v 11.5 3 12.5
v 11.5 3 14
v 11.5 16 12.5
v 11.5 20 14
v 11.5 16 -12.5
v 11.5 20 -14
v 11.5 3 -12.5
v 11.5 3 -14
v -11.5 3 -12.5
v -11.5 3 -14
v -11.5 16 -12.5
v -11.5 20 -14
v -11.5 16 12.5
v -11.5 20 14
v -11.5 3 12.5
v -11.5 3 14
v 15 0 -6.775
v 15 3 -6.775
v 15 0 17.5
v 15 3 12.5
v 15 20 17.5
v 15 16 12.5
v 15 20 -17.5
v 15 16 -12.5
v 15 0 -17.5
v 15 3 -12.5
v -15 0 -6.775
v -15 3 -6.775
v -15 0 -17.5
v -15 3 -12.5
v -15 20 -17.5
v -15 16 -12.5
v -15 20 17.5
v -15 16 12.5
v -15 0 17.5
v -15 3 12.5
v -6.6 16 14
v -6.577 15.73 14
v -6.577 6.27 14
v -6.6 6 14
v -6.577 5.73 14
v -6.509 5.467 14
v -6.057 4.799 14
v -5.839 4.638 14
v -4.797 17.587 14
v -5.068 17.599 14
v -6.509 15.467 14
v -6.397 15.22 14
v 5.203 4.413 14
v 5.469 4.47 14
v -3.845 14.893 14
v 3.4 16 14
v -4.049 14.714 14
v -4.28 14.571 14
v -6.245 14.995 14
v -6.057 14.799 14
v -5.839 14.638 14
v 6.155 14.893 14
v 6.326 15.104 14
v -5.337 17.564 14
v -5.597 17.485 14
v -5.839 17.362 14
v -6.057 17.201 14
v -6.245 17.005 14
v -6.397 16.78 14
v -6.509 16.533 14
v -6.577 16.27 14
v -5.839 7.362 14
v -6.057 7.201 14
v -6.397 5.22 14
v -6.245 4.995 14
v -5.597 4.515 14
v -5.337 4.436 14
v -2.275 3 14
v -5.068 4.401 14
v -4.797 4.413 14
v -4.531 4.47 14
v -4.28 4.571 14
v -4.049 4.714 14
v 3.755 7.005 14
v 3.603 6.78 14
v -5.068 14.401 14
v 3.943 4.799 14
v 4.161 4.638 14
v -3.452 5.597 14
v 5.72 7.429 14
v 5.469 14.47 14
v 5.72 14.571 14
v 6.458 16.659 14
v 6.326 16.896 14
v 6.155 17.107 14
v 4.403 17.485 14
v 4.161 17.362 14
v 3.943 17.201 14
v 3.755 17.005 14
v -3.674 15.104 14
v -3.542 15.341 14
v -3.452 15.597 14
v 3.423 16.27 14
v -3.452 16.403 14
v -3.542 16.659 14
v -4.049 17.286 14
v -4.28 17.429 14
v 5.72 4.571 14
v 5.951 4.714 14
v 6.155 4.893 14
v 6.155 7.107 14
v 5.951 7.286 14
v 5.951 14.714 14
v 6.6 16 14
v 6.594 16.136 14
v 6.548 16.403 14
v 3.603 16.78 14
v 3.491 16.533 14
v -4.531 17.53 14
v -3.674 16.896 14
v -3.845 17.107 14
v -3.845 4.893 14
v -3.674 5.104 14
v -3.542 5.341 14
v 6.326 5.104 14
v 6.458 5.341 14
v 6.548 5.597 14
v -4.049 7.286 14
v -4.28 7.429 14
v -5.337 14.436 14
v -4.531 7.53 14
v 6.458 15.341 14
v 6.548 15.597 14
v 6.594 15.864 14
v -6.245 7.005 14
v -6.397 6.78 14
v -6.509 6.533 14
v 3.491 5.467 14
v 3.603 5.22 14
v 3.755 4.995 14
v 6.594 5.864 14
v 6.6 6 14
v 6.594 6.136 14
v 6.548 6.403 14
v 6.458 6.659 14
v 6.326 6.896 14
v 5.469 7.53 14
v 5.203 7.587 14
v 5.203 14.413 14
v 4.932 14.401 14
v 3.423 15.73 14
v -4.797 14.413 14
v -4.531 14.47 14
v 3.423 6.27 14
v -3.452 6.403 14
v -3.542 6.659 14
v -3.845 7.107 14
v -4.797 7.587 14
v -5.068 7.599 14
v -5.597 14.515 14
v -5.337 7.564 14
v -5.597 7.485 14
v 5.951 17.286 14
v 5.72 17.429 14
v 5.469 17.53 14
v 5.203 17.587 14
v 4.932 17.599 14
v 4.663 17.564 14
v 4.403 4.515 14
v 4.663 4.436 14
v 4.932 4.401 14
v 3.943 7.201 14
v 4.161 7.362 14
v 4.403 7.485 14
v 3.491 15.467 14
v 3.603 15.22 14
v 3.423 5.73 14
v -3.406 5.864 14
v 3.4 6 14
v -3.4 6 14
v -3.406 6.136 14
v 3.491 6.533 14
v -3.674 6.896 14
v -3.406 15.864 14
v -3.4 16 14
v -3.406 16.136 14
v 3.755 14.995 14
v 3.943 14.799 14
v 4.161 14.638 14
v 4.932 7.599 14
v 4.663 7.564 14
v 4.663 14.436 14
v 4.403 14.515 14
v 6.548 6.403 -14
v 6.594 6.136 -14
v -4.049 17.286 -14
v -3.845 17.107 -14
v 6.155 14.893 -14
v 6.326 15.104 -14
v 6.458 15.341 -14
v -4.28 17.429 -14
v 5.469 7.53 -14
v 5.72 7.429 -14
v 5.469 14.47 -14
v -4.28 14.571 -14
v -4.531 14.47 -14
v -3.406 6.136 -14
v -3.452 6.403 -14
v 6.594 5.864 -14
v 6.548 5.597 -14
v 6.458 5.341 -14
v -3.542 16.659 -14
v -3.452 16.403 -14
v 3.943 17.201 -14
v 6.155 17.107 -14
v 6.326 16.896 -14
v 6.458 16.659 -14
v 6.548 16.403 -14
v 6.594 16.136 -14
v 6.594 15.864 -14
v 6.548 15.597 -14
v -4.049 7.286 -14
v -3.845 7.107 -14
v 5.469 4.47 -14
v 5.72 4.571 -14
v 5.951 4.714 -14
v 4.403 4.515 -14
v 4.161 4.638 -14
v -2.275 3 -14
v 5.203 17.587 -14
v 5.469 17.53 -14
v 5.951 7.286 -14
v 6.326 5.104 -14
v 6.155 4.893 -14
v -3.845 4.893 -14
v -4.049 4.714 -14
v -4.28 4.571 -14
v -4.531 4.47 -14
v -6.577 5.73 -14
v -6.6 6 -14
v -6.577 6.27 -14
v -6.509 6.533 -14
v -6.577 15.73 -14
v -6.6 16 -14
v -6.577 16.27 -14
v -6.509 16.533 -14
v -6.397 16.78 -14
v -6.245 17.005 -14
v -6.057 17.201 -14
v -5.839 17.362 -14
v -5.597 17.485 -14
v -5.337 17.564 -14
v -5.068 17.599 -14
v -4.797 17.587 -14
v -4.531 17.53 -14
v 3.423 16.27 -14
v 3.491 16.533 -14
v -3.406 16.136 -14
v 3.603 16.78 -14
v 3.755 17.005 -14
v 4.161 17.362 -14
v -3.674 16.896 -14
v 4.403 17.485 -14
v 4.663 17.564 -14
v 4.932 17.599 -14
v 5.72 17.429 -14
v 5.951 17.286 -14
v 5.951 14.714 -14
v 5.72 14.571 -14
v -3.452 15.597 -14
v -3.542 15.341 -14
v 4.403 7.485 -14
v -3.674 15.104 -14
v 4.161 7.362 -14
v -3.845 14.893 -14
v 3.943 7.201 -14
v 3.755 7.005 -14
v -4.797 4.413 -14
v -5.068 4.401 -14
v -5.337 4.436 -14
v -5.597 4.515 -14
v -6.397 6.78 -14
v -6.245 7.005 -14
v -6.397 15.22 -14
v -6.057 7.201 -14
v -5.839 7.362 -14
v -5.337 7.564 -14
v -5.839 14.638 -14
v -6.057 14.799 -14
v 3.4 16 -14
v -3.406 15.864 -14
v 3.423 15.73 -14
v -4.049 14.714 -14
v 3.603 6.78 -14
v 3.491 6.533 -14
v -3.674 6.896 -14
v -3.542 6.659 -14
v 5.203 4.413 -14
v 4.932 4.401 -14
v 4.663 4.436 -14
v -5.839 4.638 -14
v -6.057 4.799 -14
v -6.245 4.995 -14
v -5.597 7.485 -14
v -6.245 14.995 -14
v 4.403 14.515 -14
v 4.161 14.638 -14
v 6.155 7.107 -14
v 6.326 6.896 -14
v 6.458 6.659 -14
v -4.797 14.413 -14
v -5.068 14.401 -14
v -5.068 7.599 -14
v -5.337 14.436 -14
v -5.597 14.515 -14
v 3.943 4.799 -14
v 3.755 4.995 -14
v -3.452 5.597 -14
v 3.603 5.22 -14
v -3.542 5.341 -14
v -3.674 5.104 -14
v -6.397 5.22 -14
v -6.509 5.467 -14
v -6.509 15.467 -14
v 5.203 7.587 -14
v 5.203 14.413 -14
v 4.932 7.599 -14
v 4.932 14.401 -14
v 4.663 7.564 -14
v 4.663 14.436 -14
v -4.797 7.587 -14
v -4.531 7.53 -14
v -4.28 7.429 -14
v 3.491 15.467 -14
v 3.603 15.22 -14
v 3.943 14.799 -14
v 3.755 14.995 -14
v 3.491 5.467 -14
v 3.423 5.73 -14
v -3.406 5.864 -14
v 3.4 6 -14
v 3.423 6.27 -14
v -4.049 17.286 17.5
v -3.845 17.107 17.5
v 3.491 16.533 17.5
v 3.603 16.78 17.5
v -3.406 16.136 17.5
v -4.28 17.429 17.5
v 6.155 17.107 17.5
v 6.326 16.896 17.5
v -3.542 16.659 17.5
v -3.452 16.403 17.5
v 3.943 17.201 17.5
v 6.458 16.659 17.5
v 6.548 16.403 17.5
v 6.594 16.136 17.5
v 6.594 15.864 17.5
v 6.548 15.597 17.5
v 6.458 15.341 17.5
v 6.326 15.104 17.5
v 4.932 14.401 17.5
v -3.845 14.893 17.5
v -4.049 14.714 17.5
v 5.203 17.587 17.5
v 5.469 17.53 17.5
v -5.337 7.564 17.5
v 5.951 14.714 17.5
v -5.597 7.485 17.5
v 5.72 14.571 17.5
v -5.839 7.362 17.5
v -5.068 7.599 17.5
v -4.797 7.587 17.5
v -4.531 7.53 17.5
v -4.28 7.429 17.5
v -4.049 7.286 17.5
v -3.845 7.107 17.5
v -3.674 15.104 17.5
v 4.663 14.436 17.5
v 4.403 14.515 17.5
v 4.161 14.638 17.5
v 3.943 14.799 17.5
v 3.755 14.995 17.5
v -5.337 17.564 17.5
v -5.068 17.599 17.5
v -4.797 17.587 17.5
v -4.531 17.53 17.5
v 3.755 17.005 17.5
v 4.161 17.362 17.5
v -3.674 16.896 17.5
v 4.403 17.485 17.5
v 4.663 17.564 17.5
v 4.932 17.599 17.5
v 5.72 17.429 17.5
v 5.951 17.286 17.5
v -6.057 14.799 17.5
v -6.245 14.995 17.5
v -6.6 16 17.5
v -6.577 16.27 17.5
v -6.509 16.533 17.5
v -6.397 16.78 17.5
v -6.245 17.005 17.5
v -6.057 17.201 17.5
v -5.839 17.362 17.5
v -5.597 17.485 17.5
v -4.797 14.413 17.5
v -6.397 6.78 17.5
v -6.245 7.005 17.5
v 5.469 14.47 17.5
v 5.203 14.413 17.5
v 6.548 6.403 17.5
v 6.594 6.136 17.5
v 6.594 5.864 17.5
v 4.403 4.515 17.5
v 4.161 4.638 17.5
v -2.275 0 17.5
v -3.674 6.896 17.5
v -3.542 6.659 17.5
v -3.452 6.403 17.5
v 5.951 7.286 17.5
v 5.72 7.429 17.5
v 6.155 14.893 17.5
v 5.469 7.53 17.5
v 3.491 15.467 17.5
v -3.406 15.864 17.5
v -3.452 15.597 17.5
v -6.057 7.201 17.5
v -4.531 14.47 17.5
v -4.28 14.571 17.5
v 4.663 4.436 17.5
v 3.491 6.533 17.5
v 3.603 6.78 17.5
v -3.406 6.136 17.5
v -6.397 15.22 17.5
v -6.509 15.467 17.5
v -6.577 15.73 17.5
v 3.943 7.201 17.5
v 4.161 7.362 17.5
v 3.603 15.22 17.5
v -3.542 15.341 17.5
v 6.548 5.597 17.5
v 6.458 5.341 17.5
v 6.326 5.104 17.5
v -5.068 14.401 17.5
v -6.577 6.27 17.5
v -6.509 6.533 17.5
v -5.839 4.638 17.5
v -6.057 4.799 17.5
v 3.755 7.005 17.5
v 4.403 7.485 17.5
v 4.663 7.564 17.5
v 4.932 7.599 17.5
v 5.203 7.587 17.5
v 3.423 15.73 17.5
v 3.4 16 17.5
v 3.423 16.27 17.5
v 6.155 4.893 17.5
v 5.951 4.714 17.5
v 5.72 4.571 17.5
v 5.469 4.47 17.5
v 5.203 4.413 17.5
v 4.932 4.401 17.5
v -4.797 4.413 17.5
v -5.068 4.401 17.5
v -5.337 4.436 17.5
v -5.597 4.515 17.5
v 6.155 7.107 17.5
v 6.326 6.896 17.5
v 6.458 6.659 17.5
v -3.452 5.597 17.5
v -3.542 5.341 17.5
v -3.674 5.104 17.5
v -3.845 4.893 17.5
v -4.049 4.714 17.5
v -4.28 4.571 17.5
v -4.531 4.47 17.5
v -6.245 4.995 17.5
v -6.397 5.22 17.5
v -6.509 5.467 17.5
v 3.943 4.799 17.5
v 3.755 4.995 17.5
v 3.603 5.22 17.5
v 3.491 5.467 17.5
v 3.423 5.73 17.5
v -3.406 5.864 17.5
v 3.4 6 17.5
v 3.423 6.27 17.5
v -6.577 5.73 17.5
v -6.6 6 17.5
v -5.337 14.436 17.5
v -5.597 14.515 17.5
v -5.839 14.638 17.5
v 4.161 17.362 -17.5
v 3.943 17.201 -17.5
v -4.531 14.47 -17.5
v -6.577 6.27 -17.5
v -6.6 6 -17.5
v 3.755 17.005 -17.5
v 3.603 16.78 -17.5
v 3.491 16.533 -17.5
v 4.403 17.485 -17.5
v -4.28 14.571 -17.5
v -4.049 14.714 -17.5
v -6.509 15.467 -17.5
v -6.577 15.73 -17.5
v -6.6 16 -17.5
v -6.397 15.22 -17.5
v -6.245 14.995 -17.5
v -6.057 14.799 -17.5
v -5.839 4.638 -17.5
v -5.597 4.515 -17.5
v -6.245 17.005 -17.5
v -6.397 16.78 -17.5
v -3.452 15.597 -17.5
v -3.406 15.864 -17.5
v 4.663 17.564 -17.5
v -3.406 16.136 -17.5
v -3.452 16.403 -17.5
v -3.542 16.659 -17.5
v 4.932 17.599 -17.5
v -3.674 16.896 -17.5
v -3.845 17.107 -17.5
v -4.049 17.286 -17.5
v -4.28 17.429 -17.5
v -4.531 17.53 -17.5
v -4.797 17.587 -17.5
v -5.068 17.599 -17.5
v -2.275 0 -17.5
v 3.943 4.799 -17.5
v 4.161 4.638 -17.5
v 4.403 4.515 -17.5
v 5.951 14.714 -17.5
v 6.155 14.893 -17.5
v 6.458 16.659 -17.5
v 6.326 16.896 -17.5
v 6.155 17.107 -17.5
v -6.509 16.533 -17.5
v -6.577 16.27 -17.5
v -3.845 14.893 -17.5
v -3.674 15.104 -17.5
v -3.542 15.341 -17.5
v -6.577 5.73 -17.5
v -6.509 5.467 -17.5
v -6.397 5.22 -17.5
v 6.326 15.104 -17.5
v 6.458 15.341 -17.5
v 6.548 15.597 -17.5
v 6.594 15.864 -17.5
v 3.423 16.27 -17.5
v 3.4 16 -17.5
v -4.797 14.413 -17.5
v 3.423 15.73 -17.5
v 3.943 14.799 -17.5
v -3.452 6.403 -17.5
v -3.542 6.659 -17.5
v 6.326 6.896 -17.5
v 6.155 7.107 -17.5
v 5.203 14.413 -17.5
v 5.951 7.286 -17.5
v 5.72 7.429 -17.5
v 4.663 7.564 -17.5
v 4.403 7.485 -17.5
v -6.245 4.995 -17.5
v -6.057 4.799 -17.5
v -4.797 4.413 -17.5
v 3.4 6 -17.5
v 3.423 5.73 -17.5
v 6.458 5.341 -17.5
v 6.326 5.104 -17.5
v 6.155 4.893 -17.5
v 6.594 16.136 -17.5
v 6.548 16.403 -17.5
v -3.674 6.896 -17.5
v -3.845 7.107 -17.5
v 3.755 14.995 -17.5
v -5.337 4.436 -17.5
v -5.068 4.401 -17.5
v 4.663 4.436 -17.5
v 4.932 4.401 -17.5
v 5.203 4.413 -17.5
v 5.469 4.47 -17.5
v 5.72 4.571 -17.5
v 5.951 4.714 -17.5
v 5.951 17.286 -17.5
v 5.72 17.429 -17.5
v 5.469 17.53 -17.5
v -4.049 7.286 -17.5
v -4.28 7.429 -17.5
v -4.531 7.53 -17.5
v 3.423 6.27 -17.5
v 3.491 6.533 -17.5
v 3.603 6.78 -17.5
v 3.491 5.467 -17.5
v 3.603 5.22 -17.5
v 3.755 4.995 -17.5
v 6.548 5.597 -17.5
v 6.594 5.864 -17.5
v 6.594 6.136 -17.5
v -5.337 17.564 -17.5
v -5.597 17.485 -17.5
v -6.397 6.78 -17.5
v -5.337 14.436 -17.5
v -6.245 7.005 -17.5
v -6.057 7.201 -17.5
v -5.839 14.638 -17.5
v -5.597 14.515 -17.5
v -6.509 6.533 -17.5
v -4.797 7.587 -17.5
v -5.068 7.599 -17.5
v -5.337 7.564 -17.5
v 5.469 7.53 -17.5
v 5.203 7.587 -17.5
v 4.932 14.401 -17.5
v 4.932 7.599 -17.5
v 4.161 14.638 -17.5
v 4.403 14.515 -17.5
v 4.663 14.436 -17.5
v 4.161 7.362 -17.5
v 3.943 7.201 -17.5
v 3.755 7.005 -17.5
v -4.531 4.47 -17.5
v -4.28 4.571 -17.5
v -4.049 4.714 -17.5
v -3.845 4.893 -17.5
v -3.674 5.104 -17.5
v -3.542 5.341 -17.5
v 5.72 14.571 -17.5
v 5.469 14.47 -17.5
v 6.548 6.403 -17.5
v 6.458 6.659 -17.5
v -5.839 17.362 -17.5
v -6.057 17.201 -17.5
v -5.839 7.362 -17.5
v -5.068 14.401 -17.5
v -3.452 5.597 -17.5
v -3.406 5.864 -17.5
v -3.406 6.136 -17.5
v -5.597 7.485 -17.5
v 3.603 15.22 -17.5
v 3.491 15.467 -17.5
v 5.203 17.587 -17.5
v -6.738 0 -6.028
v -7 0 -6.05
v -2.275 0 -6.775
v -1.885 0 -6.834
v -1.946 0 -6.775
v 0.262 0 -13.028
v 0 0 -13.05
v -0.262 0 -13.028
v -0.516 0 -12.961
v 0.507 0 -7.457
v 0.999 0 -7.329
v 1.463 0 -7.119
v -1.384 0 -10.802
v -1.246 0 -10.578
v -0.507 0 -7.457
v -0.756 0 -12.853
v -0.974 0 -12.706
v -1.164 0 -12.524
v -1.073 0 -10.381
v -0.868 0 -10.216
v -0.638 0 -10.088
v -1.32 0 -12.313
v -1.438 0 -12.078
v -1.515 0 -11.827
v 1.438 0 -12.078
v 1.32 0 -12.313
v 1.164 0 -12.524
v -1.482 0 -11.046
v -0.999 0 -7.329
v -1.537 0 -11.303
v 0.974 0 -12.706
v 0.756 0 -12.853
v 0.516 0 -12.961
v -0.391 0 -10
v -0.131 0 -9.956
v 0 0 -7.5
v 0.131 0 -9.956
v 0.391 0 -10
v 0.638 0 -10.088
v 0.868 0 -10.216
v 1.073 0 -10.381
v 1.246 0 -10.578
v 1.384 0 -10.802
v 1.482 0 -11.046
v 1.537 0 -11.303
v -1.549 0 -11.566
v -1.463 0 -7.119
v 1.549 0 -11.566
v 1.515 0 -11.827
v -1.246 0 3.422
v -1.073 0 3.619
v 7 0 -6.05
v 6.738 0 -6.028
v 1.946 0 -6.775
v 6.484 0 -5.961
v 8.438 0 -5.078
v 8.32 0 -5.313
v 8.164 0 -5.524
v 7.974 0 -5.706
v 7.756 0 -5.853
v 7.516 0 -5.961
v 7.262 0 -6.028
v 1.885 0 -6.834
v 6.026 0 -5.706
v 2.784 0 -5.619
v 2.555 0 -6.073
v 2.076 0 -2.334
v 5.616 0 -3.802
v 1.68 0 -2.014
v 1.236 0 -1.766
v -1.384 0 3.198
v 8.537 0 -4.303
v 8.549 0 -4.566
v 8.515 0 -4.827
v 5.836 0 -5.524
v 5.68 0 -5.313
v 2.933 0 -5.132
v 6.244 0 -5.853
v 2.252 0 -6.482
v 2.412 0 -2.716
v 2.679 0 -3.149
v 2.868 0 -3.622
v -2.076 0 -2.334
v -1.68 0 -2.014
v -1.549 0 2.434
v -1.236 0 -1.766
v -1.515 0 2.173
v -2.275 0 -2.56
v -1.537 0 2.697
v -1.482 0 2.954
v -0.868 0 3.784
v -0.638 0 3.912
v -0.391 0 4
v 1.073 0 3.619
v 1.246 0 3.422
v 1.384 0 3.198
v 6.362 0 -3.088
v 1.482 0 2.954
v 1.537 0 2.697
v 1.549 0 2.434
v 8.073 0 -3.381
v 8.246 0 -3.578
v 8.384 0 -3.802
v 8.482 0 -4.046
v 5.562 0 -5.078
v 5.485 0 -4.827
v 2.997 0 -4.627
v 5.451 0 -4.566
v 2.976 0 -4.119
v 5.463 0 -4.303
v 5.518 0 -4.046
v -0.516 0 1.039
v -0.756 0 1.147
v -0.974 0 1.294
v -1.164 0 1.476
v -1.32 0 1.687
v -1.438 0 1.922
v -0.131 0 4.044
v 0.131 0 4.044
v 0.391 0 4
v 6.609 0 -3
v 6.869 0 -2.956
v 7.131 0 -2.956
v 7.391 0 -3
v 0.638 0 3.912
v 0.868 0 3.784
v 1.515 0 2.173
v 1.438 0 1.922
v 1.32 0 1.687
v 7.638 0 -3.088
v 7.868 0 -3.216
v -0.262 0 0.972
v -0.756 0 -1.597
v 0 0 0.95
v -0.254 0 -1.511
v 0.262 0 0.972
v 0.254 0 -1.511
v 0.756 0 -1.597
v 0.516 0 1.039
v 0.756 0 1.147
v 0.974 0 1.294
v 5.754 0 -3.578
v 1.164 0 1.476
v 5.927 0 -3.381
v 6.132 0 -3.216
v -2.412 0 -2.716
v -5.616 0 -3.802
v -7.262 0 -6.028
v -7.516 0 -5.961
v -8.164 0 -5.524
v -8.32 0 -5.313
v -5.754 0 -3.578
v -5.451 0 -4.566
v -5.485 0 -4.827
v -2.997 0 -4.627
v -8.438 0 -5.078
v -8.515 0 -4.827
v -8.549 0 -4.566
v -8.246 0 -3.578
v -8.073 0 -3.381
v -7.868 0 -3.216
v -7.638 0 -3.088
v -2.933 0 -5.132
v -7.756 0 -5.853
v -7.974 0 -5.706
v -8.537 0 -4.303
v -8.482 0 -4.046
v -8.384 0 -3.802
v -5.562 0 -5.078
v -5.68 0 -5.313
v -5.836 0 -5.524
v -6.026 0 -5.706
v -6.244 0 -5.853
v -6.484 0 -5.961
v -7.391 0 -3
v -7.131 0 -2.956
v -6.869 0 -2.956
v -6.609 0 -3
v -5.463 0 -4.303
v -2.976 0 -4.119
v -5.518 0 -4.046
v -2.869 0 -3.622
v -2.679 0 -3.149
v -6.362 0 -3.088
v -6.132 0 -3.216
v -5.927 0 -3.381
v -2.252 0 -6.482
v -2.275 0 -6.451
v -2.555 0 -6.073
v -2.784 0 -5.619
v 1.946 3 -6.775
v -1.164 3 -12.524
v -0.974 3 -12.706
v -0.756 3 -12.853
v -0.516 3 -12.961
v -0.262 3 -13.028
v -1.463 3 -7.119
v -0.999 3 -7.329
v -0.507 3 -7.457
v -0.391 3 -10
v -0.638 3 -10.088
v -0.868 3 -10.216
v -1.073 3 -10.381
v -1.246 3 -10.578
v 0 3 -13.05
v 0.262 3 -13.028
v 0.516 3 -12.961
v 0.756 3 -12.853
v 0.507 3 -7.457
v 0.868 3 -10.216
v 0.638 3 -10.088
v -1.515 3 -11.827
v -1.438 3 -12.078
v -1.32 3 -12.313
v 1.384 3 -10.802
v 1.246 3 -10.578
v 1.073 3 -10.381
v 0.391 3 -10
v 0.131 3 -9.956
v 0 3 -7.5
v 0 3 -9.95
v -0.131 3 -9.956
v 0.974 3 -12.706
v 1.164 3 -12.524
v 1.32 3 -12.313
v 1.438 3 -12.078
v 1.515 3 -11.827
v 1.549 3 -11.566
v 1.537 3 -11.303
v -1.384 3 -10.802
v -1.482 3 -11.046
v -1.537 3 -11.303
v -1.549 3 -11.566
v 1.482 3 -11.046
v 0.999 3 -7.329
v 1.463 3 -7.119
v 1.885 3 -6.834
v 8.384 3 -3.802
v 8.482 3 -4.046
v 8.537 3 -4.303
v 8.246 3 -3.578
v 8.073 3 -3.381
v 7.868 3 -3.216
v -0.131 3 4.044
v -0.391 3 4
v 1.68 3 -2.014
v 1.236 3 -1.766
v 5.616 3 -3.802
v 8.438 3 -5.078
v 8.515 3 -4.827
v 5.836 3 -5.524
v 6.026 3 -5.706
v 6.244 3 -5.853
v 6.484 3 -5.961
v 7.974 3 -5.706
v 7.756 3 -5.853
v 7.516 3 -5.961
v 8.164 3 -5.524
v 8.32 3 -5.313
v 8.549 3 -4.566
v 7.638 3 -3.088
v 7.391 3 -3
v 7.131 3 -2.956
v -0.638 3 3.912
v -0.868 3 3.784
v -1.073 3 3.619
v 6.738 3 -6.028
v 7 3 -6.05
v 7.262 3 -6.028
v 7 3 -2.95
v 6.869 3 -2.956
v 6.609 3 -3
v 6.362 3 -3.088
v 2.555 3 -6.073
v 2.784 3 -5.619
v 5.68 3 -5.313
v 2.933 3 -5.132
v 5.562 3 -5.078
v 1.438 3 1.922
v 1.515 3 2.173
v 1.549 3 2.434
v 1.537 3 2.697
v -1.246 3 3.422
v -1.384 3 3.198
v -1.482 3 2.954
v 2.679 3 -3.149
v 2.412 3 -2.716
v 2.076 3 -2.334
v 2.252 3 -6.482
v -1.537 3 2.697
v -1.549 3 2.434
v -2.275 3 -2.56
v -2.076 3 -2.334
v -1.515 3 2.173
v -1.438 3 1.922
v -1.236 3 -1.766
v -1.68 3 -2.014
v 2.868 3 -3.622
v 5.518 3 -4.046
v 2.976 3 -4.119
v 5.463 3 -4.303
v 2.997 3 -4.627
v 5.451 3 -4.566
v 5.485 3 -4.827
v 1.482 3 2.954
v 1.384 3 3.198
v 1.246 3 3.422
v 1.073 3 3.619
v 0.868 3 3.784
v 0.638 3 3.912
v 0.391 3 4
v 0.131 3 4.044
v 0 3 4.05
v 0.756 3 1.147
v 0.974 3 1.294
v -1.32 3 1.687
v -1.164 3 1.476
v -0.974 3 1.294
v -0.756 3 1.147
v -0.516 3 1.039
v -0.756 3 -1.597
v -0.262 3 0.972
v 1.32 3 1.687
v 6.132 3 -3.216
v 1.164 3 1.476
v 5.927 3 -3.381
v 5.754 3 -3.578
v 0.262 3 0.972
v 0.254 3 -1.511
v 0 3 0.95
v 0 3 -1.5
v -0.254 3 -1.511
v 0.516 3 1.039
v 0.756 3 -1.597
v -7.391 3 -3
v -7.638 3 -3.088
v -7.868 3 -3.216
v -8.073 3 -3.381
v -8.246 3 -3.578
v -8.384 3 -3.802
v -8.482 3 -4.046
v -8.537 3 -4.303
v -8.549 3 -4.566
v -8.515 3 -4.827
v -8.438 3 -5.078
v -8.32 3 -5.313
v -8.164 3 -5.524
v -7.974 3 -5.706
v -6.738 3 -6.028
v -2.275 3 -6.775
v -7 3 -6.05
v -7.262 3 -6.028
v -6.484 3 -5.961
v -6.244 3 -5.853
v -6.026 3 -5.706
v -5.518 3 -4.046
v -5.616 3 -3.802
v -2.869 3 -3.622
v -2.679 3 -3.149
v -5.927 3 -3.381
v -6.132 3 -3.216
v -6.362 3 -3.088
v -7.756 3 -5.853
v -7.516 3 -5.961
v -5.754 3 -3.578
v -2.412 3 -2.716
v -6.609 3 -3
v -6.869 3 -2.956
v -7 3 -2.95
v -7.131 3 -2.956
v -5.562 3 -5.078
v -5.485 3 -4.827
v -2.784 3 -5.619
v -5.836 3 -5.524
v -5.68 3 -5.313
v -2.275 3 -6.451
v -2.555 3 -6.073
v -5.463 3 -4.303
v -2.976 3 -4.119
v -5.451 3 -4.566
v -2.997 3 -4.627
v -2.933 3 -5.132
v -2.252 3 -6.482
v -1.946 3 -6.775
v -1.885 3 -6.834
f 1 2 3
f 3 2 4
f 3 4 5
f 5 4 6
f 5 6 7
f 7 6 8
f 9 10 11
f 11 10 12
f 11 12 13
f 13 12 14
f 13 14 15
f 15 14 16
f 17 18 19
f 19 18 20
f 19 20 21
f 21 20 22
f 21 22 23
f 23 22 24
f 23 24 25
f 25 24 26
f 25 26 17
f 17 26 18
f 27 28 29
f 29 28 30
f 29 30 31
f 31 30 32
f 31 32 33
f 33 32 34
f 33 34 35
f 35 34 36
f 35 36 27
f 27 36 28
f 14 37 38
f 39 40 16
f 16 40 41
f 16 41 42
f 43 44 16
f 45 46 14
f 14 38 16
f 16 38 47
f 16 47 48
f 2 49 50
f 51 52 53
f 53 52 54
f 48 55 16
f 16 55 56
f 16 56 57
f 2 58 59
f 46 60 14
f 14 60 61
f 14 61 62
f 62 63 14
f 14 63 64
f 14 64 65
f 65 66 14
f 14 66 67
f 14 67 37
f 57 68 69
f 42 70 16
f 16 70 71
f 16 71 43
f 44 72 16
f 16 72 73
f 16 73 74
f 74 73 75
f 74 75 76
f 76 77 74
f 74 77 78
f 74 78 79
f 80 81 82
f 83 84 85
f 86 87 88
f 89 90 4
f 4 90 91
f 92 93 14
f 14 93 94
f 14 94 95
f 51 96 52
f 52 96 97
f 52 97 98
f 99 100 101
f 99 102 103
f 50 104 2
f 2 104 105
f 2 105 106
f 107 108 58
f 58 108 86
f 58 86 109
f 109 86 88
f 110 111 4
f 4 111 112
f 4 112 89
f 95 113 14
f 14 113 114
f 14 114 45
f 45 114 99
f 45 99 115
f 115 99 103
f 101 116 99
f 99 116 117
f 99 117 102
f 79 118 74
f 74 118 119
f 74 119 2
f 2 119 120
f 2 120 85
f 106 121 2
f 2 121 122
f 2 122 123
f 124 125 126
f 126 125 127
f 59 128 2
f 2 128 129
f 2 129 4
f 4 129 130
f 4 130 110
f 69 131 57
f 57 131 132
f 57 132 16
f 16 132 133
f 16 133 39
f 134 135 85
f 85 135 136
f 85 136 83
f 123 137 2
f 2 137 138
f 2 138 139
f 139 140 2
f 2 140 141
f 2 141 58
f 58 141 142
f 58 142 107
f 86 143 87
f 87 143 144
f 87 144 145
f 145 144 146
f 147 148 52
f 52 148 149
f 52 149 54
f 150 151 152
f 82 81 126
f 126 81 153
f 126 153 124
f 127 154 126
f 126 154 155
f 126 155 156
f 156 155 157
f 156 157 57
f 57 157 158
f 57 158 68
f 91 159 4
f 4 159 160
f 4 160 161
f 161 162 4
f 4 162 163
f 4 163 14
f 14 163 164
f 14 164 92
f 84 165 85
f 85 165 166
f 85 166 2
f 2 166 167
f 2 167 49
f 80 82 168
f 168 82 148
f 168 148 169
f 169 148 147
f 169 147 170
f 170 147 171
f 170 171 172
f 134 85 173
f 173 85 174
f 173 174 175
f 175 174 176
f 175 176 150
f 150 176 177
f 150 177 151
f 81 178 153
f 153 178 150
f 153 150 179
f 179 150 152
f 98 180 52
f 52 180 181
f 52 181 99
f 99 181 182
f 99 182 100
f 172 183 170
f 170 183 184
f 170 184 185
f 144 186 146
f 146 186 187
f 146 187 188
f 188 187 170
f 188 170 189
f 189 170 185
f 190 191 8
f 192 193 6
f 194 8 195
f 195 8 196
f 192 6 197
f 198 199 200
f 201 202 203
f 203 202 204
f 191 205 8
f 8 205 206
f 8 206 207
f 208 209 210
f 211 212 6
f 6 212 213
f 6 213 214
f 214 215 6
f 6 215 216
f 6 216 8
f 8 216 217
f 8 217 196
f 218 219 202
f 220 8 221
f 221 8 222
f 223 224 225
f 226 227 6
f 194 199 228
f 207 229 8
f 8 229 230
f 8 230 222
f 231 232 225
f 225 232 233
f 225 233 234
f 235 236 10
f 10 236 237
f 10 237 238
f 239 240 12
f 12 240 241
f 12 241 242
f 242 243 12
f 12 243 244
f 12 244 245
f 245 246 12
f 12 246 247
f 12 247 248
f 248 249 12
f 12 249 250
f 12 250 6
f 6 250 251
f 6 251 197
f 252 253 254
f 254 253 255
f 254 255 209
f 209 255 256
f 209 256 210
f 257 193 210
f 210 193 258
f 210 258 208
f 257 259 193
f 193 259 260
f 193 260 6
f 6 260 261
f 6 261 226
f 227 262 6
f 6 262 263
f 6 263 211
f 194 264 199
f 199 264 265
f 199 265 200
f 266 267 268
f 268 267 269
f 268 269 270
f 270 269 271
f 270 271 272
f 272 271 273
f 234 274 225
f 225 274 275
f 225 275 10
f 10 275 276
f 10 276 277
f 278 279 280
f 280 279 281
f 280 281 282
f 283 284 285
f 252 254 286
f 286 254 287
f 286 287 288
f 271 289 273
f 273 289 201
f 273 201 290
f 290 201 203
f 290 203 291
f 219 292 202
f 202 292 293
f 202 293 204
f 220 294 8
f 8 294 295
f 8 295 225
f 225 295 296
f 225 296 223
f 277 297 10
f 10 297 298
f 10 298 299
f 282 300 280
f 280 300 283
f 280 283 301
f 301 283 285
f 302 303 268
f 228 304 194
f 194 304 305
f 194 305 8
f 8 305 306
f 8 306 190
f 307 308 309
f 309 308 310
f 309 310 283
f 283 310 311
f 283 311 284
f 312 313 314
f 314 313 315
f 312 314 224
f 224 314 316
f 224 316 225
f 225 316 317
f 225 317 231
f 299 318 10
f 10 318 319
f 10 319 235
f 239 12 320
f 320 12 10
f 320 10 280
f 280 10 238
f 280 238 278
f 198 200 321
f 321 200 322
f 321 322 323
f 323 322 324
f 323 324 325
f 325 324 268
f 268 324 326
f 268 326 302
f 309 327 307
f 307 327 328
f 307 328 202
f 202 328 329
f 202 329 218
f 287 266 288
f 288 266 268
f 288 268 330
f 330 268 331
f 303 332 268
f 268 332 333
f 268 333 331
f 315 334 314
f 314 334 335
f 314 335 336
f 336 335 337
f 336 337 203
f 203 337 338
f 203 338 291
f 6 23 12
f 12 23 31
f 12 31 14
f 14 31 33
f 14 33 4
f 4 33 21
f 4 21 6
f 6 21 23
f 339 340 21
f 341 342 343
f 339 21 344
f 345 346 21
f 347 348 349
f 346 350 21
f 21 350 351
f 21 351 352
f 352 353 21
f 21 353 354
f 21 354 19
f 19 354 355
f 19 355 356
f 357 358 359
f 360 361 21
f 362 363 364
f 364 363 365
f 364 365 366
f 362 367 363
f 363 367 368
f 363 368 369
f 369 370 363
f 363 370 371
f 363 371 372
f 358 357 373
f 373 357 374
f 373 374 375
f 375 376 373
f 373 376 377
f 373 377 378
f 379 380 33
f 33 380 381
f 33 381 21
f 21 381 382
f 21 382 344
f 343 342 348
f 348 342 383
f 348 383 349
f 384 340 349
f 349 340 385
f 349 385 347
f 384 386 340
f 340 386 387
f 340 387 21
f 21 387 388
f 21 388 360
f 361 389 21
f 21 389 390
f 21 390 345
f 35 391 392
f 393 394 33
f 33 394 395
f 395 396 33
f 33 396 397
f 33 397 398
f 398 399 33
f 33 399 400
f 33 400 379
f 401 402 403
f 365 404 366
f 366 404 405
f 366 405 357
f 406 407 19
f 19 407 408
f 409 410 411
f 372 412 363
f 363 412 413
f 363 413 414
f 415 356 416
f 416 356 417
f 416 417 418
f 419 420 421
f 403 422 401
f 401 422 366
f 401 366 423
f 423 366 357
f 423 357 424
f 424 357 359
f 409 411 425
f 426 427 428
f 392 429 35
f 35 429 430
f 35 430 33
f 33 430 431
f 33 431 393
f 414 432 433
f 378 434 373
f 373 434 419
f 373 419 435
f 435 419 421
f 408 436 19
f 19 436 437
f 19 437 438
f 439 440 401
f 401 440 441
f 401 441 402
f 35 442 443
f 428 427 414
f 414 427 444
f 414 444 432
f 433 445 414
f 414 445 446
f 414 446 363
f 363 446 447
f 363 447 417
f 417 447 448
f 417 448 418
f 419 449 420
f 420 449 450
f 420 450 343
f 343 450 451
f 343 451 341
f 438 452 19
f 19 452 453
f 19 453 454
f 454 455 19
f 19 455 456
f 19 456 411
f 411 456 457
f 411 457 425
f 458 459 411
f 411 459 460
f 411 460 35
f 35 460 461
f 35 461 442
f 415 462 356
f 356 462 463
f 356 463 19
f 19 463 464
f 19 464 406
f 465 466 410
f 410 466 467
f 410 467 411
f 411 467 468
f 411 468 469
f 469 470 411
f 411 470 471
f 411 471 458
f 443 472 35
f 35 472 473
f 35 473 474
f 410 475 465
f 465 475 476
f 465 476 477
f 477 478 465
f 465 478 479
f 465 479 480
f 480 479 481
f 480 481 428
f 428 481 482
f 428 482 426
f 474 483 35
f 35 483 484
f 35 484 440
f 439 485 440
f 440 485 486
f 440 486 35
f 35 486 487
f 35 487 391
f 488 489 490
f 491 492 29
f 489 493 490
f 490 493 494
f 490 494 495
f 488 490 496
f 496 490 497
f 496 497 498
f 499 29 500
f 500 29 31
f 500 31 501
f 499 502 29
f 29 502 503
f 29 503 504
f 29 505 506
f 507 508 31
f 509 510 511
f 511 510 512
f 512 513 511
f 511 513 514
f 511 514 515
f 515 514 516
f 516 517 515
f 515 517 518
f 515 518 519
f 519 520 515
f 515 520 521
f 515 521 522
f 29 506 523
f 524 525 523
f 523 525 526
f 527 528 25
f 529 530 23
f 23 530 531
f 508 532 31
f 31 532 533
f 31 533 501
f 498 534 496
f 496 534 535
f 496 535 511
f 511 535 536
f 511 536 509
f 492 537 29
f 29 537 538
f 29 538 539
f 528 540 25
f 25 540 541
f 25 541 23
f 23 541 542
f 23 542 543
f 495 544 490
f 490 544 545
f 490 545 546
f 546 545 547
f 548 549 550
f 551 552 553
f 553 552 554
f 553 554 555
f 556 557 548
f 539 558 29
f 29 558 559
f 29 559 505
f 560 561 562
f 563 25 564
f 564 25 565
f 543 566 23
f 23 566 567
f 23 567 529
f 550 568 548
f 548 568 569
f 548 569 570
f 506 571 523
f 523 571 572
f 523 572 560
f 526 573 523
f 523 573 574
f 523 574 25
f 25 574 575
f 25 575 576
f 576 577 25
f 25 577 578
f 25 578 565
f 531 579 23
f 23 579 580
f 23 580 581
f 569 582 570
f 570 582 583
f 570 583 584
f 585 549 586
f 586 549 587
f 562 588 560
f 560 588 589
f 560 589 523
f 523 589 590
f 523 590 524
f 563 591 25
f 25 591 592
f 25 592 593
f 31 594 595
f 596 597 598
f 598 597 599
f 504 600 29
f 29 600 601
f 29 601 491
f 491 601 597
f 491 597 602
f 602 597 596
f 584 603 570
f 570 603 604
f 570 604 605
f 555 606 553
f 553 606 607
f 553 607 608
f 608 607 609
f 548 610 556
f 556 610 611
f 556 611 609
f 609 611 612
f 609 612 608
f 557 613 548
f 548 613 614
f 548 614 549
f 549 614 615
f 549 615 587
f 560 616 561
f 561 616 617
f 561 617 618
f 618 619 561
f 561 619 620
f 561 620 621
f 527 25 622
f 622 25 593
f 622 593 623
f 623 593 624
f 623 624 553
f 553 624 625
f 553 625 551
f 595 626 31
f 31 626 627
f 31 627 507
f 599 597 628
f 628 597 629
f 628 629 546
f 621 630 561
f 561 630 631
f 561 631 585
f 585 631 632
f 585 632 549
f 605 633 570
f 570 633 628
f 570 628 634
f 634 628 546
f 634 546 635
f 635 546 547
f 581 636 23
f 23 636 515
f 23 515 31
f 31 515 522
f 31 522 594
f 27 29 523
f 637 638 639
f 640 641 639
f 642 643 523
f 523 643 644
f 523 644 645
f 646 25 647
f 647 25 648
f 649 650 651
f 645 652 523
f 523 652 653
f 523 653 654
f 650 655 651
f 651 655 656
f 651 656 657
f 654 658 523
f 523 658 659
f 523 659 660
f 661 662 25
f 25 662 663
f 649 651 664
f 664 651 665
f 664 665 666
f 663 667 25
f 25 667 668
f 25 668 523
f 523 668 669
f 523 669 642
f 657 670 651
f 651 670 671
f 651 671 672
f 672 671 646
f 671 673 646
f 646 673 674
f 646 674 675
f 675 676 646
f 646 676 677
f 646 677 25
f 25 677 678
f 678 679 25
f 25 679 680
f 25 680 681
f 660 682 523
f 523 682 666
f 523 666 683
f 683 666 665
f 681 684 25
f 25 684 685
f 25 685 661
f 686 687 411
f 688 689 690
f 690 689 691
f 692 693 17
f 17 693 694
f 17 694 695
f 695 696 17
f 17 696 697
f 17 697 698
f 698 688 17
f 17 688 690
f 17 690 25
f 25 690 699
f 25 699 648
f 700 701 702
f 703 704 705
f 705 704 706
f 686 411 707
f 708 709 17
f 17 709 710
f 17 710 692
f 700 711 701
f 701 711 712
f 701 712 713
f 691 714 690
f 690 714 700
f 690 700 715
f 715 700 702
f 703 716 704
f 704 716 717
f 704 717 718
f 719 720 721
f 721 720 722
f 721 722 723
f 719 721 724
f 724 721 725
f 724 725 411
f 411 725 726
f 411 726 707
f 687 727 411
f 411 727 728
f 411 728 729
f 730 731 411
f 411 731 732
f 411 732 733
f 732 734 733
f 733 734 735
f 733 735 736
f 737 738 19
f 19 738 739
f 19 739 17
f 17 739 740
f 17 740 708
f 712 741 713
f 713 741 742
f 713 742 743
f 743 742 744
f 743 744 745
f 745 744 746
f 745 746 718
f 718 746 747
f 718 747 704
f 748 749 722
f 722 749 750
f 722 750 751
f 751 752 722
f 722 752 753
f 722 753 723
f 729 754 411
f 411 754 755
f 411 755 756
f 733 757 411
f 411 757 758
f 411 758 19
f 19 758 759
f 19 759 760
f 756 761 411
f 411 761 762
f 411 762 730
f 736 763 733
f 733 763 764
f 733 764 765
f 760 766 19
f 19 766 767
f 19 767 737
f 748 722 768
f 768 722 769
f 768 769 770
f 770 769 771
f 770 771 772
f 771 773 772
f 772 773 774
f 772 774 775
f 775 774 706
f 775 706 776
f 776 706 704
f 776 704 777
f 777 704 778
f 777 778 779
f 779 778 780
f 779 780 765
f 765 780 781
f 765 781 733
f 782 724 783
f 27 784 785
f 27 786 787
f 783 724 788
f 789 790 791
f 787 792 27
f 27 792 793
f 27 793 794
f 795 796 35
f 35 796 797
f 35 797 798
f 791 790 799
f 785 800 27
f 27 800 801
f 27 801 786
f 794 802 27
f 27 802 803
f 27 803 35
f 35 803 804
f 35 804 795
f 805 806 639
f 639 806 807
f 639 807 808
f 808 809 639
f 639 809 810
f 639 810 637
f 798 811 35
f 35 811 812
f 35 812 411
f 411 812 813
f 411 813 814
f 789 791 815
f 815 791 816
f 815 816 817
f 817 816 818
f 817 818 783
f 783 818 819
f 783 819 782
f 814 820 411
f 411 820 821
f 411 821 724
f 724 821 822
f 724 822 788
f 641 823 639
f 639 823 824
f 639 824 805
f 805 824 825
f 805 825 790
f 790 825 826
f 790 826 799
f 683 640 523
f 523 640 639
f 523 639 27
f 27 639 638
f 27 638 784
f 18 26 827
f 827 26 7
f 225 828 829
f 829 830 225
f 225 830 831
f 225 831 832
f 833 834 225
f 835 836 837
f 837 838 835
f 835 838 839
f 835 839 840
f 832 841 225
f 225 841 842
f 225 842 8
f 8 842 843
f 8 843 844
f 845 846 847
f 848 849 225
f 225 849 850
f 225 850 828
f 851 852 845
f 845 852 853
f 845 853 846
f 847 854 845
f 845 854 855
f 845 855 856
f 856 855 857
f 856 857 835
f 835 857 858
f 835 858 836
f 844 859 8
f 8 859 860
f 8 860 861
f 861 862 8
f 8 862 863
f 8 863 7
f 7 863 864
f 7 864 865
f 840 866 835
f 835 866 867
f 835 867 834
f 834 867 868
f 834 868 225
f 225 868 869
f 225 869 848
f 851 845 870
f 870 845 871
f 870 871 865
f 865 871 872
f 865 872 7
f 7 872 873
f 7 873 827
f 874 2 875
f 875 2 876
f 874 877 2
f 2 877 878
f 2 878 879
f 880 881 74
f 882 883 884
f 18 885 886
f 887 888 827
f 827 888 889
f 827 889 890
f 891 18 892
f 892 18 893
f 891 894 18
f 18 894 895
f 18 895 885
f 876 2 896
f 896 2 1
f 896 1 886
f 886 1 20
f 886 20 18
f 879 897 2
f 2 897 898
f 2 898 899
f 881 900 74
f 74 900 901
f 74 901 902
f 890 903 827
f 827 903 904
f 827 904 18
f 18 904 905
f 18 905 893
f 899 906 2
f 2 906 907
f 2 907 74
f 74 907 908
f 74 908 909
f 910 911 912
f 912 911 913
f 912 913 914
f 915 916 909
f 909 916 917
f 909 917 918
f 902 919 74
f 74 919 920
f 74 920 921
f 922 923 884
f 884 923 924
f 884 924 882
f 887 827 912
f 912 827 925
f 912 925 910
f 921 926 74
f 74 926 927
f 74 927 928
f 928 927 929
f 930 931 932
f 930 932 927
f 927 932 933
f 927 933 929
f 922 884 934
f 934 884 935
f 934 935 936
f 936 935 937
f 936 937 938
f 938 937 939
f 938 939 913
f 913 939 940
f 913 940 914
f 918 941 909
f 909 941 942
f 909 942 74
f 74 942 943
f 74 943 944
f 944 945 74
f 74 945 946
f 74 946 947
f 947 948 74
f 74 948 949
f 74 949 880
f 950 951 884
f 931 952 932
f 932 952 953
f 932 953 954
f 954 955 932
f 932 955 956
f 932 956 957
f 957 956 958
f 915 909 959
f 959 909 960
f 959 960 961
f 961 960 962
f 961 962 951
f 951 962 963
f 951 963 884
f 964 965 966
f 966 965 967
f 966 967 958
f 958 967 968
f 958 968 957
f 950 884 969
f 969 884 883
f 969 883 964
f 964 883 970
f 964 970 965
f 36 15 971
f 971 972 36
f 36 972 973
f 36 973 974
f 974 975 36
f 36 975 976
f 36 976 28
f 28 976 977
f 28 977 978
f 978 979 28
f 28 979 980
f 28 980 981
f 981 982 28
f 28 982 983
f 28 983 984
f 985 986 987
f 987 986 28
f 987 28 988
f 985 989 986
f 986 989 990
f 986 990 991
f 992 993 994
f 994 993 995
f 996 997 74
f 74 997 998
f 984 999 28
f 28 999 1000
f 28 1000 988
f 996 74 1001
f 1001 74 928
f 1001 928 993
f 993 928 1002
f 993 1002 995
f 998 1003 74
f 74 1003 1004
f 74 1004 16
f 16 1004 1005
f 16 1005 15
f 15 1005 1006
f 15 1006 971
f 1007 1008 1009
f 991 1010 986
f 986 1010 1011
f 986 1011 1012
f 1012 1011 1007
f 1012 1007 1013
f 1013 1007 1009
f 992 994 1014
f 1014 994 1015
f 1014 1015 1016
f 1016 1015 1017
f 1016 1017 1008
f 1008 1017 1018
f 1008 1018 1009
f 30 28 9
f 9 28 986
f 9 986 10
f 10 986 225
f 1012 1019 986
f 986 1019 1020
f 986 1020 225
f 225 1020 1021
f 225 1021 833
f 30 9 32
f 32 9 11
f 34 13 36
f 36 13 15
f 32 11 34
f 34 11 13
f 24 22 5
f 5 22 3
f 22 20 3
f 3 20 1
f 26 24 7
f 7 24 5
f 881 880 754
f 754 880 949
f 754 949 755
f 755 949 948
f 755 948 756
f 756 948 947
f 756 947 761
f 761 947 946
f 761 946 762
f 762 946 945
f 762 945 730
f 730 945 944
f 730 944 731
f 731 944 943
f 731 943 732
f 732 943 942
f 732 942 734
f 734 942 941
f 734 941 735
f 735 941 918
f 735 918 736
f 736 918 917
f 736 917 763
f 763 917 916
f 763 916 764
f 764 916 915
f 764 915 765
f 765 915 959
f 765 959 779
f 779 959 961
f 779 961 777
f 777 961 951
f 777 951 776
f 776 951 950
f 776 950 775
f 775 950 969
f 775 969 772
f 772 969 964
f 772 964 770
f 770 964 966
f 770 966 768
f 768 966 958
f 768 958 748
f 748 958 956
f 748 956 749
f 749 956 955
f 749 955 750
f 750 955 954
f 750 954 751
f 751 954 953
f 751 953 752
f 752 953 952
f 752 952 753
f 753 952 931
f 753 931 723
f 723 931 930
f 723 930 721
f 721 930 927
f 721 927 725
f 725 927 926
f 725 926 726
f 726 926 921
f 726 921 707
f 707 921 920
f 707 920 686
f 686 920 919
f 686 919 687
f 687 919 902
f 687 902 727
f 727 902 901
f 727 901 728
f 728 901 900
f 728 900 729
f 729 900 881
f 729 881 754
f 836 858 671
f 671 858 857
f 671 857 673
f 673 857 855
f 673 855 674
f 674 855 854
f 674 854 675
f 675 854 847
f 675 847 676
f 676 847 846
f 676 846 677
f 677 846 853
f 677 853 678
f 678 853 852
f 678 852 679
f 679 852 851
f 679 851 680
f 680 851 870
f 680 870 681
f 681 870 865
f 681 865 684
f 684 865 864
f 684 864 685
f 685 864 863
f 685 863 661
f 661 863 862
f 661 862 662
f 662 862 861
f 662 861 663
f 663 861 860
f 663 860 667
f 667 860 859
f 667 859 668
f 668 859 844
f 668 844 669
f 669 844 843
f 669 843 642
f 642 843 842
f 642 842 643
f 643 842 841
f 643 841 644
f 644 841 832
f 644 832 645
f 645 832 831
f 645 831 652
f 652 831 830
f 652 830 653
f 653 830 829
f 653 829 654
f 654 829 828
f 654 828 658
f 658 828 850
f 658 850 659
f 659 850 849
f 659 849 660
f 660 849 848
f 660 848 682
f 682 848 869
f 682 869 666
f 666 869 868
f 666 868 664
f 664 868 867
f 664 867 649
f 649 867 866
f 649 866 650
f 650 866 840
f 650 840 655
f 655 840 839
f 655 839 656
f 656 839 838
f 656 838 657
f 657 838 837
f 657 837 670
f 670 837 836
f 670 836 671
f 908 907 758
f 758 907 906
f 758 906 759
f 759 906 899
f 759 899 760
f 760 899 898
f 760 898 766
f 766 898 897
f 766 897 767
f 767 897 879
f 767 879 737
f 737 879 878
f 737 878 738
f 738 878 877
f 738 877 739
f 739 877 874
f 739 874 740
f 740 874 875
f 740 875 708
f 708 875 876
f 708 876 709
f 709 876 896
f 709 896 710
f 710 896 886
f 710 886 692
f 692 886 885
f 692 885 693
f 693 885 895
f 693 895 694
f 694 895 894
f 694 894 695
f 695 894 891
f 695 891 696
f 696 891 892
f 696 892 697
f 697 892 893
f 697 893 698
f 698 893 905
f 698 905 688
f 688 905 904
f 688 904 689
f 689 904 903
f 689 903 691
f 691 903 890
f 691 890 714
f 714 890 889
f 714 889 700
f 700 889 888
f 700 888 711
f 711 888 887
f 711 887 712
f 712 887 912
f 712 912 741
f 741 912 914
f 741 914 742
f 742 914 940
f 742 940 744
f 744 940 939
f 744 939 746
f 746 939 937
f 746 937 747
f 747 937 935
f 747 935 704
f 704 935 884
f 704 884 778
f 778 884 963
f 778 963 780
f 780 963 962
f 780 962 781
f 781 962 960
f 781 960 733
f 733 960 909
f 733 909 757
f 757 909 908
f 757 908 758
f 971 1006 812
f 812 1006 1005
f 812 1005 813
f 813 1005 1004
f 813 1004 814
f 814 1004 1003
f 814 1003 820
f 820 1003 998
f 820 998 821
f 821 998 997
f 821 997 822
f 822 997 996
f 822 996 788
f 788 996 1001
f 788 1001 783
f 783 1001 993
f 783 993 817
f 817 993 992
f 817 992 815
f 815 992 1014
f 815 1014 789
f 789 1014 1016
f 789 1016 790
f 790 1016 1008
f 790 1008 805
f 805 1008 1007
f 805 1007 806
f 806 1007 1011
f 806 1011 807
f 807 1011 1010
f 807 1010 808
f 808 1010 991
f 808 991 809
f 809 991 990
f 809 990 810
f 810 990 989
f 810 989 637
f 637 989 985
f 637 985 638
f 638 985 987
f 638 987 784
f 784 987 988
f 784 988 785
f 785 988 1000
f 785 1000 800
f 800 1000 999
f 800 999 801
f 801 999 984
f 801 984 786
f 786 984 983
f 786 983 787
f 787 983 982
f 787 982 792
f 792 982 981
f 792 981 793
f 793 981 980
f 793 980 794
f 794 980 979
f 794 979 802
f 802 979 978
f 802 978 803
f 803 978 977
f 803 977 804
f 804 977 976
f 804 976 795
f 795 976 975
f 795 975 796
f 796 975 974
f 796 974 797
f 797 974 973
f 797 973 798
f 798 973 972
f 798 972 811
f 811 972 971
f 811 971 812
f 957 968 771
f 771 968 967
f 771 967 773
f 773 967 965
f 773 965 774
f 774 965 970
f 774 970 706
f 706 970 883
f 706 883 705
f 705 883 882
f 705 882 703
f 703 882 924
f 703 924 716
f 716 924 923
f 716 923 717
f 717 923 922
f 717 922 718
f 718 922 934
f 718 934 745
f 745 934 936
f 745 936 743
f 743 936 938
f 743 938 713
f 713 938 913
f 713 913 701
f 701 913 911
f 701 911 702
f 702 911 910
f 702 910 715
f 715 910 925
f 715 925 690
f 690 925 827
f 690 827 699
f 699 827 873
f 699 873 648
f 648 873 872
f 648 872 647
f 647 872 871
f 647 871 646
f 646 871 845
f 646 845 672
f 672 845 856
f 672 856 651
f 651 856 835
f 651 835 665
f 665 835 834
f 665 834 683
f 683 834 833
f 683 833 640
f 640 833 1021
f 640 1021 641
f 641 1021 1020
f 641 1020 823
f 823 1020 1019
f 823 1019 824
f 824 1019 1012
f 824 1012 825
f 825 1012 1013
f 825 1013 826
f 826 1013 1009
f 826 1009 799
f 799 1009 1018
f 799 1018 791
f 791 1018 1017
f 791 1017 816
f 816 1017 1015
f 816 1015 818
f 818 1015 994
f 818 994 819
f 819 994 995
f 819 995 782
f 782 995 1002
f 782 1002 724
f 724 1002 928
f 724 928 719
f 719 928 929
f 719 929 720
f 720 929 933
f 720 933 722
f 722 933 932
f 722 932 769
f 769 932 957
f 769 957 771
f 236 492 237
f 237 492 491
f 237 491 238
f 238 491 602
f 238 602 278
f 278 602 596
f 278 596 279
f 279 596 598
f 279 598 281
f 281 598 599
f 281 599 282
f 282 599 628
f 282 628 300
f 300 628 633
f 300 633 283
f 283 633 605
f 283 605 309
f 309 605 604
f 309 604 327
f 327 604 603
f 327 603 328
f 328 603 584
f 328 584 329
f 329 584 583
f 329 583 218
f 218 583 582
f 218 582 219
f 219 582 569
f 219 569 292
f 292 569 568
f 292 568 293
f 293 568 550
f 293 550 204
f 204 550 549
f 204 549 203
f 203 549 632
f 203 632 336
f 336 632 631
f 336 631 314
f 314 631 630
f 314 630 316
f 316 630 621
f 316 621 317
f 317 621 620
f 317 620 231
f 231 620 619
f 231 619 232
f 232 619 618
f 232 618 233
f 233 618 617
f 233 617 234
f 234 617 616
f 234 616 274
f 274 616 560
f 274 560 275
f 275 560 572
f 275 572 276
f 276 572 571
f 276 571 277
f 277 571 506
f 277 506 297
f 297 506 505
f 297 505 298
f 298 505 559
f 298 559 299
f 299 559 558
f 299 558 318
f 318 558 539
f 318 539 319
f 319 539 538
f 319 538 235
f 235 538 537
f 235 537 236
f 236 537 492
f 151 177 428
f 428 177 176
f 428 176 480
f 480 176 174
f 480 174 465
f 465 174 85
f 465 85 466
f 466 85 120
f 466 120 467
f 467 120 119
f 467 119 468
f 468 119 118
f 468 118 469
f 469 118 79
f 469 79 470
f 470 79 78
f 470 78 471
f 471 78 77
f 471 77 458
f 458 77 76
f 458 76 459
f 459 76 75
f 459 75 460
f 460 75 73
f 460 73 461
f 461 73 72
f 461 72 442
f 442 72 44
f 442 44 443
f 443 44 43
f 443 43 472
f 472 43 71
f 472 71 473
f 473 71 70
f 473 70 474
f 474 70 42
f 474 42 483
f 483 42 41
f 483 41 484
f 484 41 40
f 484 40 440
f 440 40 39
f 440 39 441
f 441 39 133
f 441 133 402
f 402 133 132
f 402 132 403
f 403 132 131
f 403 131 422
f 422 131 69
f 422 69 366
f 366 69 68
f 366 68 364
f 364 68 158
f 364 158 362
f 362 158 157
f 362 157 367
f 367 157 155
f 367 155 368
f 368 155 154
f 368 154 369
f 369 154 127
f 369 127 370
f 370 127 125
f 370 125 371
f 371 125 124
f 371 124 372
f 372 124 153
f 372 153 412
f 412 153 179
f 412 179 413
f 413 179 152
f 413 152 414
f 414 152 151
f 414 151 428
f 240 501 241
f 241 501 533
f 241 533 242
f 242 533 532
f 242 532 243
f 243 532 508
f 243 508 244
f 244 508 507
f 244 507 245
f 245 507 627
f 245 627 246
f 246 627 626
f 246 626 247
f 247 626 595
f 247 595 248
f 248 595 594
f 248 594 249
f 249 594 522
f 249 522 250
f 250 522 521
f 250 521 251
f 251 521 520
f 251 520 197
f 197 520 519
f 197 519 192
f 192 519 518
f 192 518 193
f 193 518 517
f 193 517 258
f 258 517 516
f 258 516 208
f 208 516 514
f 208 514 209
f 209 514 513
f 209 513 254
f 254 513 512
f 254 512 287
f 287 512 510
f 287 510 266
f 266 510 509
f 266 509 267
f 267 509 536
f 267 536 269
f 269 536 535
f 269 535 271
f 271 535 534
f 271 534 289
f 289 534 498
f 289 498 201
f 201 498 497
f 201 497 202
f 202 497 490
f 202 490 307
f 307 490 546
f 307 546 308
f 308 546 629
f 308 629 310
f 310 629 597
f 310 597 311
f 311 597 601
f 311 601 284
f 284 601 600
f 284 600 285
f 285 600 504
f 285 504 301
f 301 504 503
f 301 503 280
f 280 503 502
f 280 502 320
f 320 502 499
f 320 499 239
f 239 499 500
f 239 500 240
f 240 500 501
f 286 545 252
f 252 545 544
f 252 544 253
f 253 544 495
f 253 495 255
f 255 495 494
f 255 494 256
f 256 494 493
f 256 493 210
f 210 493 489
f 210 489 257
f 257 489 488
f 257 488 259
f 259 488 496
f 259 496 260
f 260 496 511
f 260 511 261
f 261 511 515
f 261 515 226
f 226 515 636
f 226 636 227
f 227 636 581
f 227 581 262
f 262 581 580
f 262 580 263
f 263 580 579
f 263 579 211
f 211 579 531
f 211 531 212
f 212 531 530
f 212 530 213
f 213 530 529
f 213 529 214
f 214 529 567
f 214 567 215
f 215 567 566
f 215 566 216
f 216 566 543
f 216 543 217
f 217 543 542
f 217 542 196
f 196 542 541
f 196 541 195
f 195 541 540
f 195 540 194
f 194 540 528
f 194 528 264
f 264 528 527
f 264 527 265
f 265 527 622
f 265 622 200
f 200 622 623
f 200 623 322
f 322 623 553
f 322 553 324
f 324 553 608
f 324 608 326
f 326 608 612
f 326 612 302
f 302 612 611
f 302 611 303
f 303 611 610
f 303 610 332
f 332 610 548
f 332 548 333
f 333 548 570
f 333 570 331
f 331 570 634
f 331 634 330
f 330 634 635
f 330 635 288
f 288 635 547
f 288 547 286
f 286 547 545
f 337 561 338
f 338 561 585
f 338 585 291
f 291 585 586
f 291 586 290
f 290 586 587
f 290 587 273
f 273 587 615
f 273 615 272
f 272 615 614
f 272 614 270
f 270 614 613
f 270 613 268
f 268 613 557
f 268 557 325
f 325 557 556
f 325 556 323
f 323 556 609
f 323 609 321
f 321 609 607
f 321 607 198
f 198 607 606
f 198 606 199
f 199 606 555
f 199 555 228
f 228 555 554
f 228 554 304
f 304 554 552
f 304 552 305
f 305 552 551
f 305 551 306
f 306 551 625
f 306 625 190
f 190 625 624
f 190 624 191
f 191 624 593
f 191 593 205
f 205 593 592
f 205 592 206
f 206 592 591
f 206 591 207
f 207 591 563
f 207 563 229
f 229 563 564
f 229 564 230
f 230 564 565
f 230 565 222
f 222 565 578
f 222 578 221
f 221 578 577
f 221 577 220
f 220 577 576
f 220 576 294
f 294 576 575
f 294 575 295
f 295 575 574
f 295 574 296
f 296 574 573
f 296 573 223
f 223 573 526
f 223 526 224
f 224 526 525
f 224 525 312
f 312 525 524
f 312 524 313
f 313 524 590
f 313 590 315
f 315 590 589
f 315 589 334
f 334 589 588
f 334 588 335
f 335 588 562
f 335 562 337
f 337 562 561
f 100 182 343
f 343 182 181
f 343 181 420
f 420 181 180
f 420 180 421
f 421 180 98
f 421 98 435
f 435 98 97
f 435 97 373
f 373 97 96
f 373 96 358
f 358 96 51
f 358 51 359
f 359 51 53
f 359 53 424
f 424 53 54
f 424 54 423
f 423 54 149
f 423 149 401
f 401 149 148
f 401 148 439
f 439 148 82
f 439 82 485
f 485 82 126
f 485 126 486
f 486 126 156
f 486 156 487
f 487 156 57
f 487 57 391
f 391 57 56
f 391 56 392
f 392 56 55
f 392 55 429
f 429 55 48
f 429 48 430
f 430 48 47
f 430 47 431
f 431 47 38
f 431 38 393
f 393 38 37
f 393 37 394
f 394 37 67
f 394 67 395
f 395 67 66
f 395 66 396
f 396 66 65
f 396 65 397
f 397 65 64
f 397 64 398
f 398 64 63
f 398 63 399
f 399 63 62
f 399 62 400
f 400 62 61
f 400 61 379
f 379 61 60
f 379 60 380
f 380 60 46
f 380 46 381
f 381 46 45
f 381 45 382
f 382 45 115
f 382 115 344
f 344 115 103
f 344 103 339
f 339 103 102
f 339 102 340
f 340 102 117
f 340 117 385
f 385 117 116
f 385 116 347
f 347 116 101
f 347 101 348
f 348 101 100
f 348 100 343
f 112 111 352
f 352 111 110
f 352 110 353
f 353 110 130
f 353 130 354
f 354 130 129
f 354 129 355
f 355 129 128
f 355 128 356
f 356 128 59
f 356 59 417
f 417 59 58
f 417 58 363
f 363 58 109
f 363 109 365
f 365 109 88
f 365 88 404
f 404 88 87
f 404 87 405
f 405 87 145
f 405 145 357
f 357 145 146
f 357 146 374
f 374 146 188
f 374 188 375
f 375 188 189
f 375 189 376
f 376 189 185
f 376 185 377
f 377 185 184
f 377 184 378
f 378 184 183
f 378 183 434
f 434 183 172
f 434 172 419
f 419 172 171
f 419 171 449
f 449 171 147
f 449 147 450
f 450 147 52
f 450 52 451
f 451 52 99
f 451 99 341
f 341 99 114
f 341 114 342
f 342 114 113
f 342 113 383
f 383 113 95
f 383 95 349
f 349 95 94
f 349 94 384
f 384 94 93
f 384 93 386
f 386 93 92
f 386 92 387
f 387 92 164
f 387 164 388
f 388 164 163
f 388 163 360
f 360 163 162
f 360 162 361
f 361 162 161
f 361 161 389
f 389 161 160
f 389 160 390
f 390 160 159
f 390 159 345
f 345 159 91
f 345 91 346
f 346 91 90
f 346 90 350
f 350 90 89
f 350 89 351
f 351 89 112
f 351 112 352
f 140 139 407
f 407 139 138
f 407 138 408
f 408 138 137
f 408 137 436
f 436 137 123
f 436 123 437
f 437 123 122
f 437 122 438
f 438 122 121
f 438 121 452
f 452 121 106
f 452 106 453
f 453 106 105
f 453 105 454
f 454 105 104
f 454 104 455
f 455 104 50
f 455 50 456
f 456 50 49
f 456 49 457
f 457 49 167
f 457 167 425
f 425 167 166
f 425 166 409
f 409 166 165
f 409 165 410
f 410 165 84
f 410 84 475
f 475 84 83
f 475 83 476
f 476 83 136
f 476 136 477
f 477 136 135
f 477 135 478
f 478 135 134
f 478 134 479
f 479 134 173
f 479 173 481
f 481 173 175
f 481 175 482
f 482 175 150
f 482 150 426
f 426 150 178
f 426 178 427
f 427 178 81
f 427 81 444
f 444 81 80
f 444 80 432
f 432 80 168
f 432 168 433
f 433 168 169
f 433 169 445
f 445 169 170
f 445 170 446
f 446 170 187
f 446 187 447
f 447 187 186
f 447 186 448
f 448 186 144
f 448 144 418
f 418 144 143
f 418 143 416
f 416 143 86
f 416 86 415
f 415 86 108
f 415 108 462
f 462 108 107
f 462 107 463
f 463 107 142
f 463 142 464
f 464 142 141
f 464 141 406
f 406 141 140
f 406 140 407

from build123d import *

# Parameters (mm, degrees)
SKETCH_1_W          = 23
SKETCH_1_H          = 35
EXTRUDE_2_DEPTH     = 3
SKETCH_1_4_W        = 23
SKETCH_1_4_H        = 3.5
EXTRUDE_3_DEPTH     = 18
EXTRUDE_3_2_DEPTH   = 18
SKETCH_1_5_W        = 30
SKETCH_1_5_H        = 35
SKETCH_1_5_W_2      = 23
SKETCH_1_5_H_2      = 28
EXTRUDE_4_DEPTH     = 20
CUT_EXTRUDE_5_DEPTH = 41.078048855
SKETCH_9_R          = 1.55
SKETCH_9_R_2        = 3
CUT_EXTRUDE_6_DEPTH = 31.516389039
SKETCH_10_R         = 1.6
CUT_EXTRUDE_7_DEPTH = 44.011626335


with BuildPart() as part:
    # 草图1 → 凸台-拉伸2 (new body)
    with BuildSketch(Plane(origin=(0, 0, 0), x_dir=(1, 0, 0), z_dir=(0, 1, 0))):
        Rectangle(SKETCH_1_W, SKETCH_1_H)
    extrude(amount=EXTRUDE_2_DEPTH)



with BuildPart() as body_2:
    # 草图1<4> → 凸台-拉伸3 (new body)
    with BuildSketch(Plane(origin=(0, 0, 0), x_dir=(1, 0, 0), z_dir=(0, 1, 0))):
        with Locations((0, 15.75)):
            Rectangle(SKETCH_1_4_W, SKETCH_1_4_H)
    extrude(amount=EXTRUDE_3_DEPTH)


with BuildPart() as body_3:
    # 草图1<4> → Extrude 3 2 (new body)
    with BuildSketch(Plane(origin=(0, 0, 0), x_dir=(1, 0, 0), z_dir=(0, 1, 0))):
        with Locations((0, -15.75)):
            Rectangle(SKETCH_1_4_W, SKETCH_1_4_H)
    extrude(amount=EXTRUDE_3_2_DEPTH)


with BuildPart() as part_1:
    add(part.part)

    add(body_2.part)  # 凸台-拉伸4 merges body 2

    add(body_3.part)  # 凸台-拉伸4 merges body 3
    # 草图1<5> → 凸台-拉伸4 (add)
    with BuildSketch(Plane(origin=(0, 0, 0), x_dir=(1, 0, 0), z_dir=(0, 1, 0))):
        Rectangle(SKETCH_1_5_W, SKETCH_1_5_H)
        Rectangle(SKETCH_1_5_W_2, SKETCH_1_5_H_2, mode=Mode.SUBTRACT)
    extrude(amount=EXTRUDE_4_DEPTH)

    # 草图8 → 切除-拉伸5 (cut, through all)
    with BuildSketch(Plane.ZY.offset(15)):
        Polygon((12.5, 3), (12.5, 10), (12.5, 16), (-12.5, 16), (-12.5, 3), (0, 3), align=None)
    extrude(amount=-CUT_EXTRUDE_5_DEPTH, mode=Mode.SUBTRACT)

    # 草图9 → 切除-拉伸6 (cut, through all)
    with BuildSketch(Plane.XZ):
        with Locations((0, -11.5)):
            Circle(SKETCH_9_R)
        with Locations((0, 2.5)):
            Circle(SKETCH_9_R)
        with Locations((7, -4.5)):
            Circle(SKETCH_9_R)
        with Locations((-7, -4.5)):
            Circle(SKETCH_9_R)
        with Locations((0, -4.5)):
            Circle(SKETCH_9_R_2)
    extrude(amount=-CUT_EXTRUDE_6_DEPTH, mode=Mode.SUBTRACT)

    # 草图10 → 切除-拉伸7 (cut, through all)
    with BuildSketch(Plane(origin=(0, 0, -17.5), x_dir=(-1, 0, 0), z_dir=(0, 0, -1))):
        with Locations((5, 6)):
            Circle(SKETCH_10_R)
        with Locations((-5, 6)):
            Circle(SKETCH_10_R)
        with Locations((-5, 16)):
            Circle(SKETCH_10_R)
        with Locations((5, 16)):
            Circle(SKETCH_10_R)
    extrude(amount=-CUT_EXTRUDE_7_DEPTH, mode=Mode.SUBTRACT)


solid = part_1.part
